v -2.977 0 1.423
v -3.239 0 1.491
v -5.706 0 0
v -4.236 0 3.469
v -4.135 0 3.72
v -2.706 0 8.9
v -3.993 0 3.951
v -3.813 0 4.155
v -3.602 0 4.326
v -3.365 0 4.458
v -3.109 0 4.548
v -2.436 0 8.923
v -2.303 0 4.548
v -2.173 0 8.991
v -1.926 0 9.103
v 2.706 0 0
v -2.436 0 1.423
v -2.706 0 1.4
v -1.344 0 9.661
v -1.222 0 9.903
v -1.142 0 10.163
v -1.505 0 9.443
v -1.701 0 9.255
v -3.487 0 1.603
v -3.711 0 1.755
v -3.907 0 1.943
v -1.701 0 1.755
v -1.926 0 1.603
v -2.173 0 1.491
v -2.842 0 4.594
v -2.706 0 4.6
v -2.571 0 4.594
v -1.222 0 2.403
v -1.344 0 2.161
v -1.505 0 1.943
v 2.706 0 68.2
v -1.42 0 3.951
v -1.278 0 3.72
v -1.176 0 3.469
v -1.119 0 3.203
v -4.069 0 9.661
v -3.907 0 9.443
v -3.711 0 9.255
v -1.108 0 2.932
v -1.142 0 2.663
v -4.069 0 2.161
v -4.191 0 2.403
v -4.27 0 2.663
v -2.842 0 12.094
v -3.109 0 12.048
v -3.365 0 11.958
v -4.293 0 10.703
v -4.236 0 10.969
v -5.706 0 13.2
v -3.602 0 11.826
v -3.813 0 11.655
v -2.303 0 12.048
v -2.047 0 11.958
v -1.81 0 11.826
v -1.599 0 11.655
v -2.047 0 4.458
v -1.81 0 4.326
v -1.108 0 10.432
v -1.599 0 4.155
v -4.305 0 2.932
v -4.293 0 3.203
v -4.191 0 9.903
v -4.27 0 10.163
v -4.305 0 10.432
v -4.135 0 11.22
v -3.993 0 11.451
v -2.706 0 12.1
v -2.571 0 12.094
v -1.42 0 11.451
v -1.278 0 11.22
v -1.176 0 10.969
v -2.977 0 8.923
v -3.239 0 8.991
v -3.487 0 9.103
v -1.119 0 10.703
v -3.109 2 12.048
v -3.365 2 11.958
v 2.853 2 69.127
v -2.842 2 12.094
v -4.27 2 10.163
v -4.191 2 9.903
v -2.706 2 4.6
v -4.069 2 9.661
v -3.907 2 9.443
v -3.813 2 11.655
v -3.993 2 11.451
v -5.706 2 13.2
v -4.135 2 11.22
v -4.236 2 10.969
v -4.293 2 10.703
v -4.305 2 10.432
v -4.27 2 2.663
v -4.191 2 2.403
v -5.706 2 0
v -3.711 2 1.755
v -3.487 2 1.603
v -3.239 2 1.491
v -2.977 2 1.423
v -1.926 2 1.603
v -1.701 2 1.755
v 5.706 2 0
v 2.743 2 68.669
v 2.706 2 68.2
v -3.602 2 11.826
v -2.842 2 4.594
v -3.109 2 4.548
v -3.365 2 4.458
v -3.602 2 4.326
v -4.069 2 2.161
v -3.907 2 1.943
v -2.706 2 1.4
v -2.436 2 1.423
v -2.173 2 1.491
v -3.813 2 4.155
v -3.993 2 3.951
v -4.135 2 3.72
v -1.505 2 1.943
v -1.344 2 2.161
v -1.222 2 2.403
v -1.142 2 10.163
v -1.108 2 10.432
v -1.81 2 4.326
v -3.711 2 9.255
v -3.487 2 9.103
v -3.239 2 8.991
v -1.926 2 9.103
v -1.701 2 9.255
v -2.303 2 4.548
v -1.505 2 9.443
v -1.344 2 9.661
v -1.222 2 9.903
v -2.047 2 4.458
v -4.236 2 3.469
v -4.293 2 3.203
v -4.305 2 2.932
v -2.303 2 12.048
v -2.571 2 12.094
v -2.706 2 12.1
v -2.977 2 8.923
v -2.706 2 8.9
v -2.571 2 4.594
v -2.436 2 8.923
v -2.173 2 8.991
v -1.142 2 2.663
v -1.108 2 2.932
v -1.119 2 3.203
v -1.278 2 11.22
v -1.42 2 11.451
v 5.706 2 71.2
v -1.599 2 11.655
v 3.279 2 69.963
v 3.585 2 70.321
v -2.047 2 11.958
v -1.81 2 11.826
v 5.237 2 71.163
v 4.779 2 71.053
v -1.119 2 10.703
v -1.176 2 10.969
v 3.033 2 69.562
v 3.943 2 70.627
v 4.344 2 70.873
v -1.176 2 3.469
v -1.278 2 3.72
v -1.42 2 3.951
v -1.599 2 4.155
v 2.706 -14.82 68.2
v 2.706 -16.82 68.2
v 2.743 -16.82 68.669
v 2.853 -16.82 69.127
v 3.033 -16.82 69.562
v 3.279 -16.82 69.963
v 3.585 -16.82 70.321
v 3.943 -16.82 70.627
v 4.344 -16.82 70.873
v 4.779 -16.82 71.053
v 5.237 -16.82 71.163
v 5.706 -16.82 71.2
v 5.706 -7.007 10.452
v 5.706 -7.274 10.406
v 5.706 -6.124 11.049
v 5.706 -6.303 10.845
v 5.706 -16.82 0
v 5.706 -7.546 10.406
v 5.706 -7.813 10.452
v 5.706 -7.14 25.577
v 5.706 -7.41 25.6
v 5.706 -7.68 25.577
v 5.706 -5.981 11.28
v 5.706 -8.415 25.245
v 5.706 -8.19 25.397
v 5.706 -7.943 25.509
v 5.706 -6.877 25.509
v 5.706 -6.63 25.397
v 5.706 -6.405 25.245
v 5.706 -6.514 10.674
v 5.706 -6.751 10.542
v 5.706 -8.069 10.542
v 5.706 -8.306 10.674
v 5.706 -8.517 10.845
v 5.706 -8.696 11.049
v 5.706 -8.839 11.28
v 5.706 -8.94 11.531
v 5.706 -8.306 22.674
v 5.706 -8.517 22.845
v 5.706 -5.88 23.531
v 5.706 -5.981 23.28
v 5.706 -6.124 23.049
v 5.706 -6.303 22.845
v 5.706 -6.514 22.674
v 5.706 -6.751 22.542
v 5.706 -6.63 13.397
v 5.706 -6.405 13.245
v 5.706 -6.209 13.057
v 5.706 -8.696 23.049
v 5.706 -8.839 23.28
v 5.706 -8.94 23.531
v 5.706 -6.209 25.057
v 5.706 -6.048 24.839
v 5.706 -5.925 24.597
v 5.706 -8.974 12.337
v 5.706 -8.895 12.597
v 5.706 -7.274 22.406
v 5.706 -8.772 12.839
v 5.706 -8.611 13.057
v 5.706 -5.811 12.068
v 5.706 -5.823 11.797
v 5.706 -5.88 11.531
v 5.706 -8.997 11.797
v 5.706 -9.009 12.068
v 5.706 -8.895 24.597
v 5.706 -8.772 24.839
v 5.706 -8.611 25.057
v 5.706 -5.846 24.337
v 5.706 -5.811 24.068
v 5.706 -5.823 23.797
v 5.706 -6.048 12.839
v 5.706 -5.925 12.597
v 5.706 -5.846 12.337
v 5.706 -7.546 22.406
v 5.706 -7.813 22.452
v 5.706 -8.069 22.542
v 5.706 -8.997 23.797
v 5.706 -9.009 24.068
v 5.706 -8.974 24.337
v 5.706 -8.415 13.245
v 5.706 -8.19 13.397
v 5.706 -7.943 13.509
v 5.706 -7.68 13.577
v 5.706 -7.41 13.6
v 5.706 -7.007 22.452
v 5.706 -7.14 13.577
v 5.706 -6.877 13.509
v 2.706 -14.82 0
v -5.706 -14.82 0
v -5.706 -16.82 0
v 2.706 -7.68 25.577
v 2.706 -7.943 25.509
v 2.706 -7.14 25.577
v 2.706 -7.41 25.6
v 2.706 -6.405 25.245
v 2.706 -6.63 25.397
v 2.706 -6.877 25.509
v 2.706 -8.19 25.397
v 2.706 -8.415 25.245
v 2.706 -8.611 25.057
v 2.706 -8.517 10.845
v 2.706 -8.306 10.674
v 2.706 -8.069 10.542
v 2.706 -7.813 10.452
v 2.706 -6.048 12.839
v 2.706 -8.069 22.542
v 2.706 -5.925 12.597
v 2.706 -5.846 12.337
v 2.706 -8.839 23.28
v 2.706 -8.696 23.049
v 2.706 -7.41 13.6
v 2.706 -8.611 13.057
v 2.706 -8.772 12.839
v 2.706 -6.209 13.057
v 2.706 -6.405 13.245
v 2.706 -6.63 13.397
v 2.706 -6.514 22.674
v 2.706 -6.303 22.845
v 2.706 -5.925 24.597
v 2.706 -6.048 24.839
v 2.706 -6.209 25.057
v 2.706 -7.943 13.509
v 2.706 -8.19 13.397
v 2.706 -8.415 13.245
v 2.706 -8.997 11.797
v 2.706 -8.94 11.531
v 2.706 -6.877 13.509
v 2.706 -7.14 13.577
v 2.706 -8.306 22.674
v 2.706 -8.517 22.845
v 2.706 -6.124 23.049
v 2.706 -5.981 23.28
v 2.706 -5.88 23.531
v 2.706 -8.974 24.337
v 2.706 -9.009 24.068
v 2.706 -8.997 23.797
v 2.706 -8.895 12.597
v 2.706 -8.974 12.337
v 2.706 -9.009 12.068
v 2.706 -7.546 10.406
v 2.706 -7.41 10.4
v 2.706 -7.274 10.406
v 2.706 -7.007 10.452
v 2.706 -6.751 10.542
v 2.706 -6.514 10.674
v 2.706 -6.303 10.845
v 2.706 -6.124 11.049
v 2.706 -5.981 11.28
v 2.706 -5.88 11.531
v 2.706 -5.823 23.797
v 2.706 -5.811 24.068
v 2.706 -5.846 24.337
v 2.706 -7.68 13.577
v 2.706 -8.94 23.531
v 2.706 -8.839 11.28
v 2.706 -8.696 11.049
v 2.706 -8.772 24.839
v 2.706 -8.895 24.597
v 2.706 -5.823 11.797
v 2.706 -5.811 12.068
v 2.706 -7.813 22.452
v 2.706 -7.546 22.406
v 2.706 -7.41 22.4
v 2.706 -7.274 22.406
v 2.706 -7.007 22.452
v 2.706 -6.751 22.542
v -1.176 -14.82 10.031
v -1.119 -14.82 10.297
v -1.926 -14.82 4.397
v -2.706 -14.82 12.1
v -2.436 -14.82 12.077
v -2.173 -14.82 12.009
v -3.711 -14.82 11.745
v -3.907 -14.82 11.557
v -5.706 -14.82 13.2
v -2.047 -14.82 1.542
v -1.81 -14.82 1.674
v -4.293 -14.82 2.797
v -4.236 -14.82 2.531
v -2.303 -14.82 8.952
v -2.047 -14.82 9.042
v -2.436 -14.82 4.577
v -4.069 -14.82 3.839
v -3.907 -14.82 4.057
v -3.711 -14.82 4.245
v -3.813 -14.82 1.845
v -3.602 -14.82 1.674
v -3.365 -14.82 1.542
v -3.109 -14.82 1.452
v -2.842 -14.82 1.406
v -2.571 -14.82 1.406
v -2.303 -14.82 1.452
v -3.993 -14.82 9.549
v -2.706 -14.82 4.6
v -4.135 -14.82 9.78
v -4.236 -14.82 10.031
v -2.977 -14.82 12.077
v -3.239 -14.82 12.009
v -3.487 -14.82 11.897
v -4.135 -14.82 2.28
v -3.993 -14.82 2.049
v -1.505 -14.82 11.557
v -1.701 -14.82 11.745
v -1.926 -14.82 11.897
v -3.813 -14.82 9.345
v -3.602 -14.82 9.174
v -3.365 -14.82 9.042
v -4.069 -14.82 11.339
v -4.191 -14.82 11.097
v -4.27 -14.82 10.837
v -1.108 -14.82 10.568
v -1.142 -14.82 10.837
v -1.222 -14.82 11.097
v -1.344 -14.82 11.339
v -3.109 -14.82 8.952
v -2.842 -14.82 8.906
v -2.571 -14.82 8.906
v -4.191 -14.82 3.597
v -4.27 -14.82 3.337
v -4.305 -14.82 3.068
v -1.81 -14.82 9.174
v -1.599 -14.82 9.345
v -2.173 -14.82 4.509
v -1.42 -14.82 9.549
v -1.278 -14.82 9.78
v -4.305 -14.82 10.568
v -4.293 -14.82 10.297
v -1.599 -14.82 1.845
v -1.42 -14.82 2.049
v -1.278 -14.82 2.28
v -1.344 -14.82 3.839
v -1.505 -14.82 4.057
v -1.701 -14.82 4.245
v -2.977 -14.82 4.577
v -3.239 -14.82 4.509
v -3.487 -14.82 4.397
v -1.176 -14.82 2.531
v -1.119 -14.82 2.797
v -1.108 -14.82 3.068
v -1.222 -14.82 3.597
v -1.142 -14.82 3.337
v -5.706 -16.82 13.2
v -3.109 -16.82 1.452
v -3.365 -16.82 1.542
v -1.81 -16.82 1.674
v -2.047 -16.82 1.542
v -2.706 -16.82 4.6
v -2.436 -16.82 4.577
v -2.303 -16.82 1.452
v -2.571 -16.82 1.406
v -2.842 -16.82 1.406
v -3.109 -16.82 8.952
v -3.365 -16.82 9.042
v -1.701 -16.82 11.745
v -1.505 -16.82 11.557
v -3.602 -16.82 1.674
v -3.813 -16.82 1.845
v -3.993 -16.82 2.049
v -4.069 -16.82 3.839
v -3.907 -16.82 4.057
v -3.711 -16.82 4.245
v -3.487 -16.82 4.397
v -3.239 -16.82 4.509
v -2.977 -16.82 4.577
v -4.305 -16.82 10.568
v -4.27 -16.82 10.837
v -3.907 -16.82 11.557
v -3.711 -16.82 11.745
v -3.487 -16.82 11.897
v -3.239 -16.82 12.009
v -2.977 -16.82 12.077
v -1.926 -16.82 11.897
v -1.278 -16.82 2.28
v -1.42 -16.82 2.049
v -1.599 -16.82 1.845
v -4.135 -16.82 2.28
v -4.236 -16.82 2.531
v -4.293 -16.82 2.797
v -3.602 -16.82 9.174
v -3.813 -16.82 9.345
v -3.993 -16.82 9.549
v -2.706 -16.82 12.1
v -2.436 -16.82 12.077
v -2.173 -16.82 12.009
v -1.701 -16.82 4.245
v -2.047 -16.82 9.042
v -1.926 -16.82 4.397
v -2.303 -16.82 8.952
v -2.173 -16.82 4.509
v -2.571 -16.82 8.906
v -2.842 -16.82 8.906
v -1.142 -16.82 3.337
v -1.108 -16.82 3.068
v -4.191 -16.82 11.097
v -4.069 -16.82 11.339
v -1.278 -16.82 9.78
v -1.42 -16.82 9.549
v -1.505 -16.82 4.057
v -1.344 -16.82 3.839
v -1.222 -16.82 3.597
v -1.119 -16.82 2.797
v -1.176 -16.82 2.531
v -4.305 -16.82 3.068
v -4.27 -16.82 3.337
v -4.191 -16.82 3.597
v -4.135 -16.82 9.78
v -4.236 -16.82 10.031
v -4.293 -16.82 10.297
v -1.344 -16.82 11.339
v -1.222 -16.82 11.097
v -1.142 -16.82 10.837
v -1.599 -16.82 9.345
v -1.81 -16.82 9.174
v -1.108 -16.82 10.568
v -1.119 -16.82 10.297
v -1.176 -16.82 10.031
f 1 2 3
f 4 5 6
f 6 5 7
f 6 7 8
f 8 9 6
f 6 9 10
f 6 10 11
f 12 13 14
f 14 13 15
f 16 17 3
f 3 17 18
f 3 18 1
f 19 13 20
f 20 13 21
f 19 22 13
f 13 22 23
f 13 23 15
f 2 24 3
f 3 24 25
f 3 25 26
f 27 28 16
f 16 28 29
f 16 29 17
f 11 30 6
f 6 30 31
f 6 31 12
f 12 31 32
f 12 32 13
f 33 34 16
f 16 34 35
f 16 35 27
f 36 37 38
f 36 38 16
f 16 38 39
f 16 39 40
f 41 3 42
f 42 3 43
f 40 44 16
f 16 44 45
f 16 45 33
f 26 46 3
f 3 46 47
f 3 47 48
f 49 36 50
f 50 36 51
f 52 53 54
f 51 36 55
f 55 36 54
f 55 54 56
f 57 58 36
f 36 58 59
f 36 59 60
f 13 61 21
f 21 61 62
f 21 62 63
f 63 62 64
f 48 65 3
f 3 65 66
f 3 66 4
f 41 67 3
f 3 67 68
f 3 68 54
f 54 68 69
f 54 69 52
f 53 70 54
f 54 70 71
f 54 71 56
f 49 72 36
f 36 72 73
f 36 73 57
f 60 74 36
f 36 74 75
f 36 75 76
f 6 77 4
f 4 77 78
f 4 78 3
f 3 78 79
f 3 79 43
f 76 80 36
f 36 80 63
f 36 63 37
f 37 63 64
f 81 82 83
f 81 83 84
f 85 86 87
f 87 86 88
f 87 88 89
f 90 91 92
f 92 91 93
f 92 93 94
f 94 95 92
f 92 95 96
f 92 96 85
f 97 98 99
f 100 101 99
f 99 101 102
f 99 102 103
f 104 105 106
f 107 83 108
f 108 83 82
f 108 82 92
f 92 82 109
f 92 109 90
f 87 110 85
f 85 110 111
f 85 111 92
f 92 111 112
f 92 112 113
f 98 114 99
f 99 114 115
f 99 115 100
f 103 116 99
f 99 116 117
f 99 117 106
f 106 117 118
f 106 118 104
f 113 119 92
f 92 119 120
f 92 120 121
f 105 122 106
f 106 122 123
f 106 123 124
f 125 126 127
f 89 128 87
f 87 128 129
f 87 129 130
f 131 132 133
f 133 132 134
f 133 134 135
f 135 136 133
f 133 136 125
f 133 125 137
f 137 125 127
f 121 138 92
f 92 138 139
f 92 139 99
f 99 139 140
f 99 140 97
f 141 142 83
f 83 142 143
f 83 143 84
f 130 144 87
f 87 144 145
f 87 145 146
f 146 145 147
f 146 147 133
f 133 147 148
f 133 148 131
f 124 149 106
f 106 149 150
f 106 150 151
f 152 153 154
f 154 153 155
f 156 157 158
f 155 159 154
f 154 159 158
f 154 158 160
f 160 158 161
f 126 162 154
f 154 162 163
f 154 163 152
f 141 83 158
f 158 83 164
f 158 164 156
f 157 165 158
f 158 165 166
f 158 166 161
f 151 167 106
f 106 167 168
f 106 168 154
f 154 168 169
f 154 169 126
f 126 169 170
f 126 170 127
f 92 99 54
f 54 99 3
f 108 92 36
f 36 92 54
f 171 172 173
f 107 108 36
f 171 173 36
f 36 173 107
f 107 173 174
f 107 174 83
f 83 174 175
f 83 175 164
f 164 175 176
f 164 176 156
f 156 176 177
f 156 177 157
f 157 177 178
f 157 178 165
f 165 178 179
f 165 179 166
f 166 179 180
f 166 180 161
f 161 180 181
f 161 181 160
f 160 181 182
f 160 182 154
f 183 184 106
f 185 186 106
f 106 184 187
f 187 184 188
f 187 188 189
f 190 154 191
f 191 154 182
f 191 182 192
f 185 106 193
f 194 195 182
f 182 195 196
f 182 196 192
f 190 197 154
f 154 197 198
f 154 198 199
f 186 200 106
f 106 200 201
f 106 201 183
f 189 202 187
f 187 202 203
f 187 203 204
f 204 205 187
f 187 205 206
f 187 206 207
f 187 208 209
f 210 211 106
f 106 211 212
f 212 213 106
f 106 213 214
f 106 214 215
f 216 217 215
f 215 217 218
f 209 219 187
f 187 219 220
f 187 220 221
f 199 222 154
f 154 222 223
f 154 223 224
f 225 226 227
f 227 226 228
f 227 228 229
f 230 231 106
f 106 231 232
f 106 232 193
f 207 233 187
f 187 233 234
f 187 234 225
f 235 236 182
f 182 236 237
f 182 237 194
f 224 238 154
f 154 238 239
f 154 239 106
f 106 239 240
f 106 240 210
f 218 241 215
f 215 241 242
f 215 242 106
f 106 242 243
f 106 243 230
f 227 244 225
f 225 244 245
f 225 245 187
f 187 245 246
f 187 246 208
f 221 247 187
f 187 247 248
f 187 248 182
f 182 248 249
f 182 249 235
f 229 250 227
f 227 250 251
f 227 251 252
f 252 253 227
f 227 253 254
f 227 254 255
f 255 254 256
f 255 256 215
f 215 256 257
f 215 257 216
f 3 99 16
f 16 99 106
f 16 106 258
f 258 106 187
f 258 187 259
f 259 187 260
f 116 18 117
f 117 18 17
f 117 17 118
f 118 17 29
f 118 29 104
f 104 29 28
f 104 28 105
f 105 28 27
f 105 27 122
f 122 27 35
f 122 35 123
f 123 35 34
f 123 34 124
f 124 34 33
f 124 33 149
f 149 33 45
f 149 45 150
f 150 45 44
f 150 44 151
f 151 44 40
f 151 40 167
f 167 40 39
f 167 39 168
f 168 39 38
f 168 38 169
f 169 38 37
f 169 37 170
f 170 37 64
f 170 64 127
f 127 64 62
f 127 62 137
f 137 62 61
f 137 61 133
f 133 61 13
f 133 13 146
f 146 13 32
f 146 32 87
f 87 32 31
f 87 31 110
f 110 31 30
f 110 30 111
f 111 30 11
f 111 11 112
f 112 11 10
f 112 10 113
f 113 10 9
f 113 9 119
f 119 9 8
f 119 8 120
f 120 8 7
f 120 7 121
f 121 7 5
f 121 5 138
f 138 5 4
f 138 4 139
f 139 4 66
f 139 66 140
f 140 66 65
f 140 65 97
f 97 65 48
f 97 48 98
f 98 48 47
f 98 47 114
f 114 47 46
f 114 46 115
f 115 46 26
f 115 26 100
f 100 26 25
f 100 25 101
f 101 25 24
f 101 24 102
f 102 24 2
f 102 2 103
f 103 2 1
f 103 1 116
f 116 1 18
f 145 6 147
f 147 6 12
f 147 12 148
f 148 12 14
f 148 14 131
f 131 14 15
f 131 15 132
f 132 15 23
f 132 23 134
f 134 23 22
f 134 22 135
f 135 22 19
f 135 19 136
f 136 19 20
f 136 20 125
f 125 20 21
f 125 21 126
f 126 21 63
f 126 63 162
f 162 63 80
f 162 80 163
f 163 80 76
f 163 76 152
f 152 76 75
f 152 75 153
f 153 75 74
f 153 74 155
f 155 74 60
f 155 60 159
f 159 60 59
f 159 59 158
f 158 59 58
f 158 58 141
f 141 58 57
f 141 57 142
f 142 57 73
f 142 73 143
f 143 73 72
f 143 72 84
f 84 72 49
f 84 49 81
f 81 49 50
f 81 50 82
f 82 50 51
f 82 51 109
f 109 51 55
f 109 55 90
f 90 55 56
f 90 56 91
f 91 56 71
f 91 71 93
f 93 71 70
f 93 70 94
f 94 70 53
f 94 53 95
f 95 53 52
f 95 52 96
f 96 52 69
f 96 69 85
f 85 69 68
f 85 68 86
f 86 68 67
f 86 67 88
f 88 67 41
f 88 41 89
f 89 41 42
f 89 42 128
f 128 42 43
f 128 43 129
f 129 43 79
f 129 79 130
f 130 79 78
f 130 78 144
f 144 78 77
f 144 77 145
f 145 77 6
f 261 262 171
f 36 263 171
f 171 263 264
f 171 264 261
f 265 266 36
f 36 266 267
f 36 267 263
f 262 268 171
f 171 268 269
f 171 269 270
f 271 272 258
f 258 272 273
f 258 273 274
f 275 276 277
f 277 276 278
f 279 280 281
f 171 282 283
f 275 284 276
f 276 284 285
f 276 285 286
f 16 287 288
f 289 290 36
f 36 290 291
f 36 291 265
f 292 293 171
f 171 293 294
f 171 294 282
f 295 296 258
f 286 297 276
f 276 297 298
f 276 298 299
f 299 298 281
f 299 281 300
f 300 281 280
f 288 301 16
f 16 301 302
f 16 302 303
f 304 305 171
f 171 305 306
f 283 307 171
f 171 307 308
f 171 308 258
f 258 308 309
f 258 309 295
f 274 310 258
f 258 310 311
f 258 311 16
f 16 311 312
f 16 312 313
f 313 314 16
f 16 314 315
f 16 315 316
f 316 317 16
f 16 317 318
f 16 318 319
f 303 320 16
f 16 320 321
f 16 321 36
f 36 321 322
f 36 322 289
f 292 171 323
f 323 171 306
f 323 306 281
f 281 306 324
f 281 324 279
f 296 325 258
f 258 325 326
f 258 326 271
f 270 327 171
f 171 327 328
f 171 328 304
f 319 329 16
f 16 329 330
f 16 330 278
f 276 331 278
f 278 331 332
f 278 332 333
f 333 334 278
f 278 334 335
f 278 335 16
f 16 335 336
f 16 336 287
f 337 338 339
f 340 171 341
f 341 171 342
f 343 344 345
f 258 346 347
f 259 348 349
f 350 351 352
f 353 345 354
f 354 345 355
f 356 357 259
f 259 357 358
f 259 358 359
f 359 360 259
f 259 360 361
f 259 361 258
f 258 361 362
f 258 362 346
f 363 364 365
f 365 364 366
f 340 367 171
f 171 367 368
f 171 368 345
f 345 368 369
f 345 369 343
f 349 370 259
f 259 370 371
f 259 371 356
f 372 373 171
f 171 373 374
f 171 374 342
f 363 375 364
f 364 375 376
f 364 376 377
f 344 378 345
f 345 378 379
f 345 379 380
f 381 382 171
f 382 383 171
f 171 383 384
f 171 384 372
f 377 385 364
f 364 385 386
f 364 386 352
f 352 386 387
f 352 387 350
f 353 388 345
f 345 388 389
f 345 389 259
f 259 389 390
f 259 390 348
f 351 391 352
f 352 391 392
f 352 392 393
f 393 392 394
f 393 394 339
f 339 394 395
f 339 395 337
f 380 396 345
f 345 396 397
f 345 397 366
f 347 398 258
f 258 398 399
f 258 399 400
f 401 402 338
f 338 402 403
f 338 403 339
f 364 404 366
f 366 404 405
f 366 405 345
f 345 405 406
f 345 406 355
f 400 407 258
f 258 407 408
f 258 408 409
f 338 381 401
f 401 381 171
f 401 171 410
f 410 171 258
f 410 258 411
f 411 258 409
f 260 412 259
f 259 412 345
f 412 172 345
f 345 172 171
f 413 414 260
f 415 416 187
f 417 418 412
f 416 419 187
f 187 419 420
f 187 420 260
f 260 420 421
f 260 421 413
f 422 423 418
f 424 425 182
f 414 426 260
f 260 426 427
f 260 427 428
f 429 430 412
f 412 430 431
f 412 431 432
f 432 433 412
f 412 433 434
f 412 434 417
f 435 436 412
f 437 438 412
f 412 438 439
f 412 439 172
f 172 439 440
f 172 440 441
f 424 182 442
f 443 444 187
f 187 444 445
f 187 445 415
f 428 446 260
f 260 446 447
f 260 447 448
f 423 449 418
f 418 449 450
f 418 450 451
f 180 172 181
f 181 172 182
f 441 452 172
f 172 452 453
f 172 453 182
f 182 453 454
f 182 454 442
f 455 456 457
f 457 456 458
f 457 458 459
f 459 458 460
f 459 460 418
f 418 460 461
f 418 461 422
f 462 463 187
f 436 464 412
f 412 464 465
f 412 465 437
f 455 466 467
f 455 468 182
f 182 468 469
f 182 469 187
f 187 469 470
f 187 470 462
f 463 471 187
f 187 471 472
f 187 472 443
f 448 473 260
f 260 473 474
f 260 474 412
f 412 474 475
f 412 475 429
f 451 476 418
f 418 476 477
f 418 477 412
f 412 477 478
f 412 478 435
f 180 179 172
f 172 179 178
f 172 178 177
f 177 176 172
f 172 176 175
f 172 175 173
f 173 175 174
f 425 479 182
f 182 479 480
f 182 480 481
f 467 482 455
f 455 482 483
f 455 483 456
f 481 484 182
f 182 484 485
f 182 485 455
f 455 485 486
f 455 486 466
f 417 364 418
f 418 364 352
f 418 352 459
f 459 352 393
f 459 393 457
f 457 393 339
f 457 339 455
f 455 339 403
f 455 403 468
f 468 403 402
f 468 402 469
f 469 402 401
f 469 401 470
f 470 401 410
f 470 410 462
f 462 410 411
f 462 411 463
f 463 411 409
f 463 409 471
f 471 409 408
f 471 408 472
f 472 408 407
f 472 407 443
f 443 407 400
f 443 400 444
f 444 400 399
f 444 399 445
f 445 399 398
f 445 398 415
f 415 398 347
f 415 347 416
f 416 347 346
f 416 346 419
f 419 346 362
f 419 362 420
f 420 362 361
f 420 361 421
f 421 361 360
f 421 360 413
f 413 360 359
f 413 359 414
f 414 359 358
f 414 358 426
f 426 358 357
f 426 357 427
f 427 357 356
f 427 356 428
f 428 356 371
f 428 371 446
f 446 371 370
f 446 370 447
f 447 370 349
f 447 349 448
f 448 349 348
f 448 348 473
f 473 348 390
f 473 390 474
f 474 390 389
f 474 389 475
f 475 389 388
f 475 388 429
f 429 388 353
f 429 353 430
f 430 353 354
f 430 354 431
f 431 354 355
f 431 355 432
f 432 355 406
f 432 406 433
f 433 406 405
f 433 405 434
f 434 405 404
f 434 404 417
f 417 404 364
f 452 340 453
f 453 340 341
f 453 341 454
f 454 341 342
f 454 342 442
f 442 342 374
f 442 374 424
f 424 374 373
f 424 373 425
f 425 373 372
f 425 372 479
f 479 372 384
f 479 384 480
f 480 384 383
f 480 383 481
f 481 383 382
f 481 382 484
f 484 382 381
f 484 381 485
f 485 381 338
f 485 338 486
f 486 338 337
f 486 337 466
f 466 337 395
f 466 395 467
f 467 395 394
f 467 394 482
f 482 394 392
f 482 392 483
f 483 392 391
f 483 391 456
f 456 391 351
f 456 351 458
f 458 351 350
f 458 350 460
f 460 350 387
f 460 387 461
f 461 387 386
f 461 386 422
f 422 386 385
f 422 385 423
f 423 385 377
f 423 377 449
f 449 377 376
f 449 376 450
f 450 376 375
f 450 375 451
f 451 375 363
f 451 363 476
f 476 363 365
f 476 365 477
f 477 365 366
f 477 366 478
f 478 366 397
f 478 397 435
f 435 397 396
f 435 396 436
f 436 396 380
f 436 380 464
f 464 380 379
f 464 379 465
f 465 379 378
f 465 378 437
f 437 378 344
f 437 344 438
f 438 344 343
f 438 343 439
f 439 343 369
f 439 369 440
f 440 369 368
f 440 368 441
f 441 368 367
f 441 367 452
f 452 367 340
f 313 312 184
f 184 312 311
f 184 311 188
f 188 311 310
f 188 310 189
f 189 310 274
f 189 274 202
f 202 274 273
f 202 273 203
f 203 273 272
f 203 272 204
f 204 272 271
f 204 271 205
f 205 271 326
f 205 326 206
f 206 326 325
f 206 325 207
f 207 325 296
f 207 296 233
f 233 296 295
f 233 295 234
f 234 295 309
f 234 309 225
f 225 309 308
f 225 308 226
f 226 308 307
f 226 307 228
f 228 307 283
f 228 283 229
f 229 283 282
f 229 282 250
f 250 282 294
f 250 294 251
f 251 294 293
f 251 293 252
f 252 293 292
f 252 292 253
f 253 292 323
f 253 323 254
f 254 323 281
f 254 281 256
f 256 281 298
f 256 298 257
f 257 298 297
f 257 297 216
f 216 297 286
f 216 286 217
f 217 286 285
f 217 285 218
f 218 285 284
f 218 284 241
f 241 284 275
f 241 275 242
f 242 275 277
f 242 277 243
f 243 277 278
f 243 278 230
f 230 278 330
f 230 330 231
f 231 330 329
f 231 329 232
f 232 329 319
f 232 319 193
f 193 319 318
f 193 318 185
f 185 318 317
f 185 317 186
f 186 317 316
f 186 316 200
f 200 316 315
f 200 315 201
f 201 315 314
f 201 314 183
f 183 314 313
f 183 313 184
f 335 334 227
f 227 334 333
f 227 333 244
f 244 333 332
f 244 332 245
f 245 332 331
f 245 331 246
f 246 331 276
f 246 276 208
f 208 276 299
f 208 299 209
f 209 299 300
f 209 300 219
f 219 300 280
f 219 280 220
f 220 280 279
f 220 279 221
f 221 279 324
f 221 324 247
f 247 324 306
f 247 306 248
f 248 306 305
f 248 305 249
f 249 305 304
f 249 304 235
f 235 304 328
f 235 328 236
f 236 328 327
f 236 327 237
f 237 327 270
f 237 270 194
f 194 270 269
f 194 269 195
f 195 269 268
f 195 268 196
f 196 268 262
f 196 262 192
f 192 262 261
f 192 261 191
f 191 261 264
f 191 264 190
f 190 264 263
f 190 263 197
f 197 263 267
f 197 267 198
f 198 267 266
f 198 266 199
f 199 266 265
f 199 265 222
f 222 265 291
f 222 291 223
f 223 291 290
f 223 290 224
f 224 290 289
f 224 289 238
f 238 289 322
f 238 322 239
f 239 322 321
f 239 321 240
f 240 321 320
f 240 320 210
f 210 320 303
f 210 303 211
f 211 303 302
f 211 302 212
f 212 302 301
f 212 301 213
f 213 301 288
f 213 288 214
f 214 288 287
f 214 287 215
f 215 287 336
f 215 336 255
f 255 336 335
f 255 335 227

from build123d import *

# Parameters (mm, degrees)
SKETCH1_R               = 1.6
BOSS_EXTRUDE1_DEPTH     = 2
BOSS_EXTRUDE2_START     = 7.41
BOSS_EXTRUDE2_DEPTH     = 7.41
CUT_EXTRUDE1_DEPTH      = 74.641853292
CUT_EXTRUDE1_DEPTH_BACK = 74.641853292
SKETCH3_R               = 1.6


with BuildPart() as part:
    # Sketch1 → Boss-Extrude1 (new body)
    with BuildSketch(Plane(origin=(0, 0, 0), x_dir=(1, 0, 0), z_dir=(0, 1, 0))):
        with BuildLine():
            Line((-5.70625, 0), (5.70625, 0))
            Line((5.70625, 0), (5.70625, -71.2))
            ThreePointArc((5.70625, -71.2), (3.584929656, -70.321320344), (2.70625, -68.2))
            Line((2.70625, -68.2), (-5.70625, -13.2))
            Line((-5.70625, -13.2), (-5.70625, 0))
        make_face()
        with Locations(Location((-2.70625, -3, 0), (0, 0, 270))):
            Circle(SKETCH1_R, mode=Mode.SUBTRACT)
        with Locations(Location((-2.70625, -10.5, 0), (0, 0, 270))):
            Circle(SKETCH1_R, mode=Mode.SUBTRACT)
    boss_extrude1 = extrude(amount=BOSS_EXTRUDE1_DEPTH)

    # Sketch2 → Boss-Extrude2 (add)
    with BuildSketch(Plane.XZ.offset(BOSS_EXTRUDE2_START)):
        with BuildLine():
            Line((5.70625, 71.2), (5.70625, 0))
            Line((5.70625, 0), (2.70625, 0))
            Line((2.70625, 0), (2.70625, 68.2))
            ThreePointArc((2.70625, 68.2), (3.584929656, 70.321320344), (5.70625, 71.2))
        make_face()
    boss_extrude2 = extrude(amount=-BOSS_EXTRUDE2_DEPTH)

    # Mirror6: Boss-Extrude2 across plane
    add(boss_extrude2.mirror(Plane(origin=(0, -7.41, 0), x_dir=(0, 0, 1), z_dir=(0, -1, 0))))

    # Mirror7: Boss-Extrude1 across plane
    add(boss_extrude1.mirror(Plane(origin=(0, -7.41, 0), x_dir=(0, 0, 1), z_dir=(0, -1, 0))))

    # Sketch3 → Cut-Extrude1 (cut, two sides: drawn at the far end of the back side and taken through both)
    with BuildSketch(Plane.ZY.offset(-2.70625).offset(-CUT_EXTRUDE1_DEPTH_BACK)):
        with Locations((24, -7.41)):
            Circle(SKETCH3_R)
        with Locations((12, -7.41)):
            Circle(SKETCH3_R)
    extrude(amount=CUT_EXTRUDE1_DEPTH + CUT_EXTRUDE1_DEPTH_BACK, mode=Mode.SUBTRACT)


solid = part.part
